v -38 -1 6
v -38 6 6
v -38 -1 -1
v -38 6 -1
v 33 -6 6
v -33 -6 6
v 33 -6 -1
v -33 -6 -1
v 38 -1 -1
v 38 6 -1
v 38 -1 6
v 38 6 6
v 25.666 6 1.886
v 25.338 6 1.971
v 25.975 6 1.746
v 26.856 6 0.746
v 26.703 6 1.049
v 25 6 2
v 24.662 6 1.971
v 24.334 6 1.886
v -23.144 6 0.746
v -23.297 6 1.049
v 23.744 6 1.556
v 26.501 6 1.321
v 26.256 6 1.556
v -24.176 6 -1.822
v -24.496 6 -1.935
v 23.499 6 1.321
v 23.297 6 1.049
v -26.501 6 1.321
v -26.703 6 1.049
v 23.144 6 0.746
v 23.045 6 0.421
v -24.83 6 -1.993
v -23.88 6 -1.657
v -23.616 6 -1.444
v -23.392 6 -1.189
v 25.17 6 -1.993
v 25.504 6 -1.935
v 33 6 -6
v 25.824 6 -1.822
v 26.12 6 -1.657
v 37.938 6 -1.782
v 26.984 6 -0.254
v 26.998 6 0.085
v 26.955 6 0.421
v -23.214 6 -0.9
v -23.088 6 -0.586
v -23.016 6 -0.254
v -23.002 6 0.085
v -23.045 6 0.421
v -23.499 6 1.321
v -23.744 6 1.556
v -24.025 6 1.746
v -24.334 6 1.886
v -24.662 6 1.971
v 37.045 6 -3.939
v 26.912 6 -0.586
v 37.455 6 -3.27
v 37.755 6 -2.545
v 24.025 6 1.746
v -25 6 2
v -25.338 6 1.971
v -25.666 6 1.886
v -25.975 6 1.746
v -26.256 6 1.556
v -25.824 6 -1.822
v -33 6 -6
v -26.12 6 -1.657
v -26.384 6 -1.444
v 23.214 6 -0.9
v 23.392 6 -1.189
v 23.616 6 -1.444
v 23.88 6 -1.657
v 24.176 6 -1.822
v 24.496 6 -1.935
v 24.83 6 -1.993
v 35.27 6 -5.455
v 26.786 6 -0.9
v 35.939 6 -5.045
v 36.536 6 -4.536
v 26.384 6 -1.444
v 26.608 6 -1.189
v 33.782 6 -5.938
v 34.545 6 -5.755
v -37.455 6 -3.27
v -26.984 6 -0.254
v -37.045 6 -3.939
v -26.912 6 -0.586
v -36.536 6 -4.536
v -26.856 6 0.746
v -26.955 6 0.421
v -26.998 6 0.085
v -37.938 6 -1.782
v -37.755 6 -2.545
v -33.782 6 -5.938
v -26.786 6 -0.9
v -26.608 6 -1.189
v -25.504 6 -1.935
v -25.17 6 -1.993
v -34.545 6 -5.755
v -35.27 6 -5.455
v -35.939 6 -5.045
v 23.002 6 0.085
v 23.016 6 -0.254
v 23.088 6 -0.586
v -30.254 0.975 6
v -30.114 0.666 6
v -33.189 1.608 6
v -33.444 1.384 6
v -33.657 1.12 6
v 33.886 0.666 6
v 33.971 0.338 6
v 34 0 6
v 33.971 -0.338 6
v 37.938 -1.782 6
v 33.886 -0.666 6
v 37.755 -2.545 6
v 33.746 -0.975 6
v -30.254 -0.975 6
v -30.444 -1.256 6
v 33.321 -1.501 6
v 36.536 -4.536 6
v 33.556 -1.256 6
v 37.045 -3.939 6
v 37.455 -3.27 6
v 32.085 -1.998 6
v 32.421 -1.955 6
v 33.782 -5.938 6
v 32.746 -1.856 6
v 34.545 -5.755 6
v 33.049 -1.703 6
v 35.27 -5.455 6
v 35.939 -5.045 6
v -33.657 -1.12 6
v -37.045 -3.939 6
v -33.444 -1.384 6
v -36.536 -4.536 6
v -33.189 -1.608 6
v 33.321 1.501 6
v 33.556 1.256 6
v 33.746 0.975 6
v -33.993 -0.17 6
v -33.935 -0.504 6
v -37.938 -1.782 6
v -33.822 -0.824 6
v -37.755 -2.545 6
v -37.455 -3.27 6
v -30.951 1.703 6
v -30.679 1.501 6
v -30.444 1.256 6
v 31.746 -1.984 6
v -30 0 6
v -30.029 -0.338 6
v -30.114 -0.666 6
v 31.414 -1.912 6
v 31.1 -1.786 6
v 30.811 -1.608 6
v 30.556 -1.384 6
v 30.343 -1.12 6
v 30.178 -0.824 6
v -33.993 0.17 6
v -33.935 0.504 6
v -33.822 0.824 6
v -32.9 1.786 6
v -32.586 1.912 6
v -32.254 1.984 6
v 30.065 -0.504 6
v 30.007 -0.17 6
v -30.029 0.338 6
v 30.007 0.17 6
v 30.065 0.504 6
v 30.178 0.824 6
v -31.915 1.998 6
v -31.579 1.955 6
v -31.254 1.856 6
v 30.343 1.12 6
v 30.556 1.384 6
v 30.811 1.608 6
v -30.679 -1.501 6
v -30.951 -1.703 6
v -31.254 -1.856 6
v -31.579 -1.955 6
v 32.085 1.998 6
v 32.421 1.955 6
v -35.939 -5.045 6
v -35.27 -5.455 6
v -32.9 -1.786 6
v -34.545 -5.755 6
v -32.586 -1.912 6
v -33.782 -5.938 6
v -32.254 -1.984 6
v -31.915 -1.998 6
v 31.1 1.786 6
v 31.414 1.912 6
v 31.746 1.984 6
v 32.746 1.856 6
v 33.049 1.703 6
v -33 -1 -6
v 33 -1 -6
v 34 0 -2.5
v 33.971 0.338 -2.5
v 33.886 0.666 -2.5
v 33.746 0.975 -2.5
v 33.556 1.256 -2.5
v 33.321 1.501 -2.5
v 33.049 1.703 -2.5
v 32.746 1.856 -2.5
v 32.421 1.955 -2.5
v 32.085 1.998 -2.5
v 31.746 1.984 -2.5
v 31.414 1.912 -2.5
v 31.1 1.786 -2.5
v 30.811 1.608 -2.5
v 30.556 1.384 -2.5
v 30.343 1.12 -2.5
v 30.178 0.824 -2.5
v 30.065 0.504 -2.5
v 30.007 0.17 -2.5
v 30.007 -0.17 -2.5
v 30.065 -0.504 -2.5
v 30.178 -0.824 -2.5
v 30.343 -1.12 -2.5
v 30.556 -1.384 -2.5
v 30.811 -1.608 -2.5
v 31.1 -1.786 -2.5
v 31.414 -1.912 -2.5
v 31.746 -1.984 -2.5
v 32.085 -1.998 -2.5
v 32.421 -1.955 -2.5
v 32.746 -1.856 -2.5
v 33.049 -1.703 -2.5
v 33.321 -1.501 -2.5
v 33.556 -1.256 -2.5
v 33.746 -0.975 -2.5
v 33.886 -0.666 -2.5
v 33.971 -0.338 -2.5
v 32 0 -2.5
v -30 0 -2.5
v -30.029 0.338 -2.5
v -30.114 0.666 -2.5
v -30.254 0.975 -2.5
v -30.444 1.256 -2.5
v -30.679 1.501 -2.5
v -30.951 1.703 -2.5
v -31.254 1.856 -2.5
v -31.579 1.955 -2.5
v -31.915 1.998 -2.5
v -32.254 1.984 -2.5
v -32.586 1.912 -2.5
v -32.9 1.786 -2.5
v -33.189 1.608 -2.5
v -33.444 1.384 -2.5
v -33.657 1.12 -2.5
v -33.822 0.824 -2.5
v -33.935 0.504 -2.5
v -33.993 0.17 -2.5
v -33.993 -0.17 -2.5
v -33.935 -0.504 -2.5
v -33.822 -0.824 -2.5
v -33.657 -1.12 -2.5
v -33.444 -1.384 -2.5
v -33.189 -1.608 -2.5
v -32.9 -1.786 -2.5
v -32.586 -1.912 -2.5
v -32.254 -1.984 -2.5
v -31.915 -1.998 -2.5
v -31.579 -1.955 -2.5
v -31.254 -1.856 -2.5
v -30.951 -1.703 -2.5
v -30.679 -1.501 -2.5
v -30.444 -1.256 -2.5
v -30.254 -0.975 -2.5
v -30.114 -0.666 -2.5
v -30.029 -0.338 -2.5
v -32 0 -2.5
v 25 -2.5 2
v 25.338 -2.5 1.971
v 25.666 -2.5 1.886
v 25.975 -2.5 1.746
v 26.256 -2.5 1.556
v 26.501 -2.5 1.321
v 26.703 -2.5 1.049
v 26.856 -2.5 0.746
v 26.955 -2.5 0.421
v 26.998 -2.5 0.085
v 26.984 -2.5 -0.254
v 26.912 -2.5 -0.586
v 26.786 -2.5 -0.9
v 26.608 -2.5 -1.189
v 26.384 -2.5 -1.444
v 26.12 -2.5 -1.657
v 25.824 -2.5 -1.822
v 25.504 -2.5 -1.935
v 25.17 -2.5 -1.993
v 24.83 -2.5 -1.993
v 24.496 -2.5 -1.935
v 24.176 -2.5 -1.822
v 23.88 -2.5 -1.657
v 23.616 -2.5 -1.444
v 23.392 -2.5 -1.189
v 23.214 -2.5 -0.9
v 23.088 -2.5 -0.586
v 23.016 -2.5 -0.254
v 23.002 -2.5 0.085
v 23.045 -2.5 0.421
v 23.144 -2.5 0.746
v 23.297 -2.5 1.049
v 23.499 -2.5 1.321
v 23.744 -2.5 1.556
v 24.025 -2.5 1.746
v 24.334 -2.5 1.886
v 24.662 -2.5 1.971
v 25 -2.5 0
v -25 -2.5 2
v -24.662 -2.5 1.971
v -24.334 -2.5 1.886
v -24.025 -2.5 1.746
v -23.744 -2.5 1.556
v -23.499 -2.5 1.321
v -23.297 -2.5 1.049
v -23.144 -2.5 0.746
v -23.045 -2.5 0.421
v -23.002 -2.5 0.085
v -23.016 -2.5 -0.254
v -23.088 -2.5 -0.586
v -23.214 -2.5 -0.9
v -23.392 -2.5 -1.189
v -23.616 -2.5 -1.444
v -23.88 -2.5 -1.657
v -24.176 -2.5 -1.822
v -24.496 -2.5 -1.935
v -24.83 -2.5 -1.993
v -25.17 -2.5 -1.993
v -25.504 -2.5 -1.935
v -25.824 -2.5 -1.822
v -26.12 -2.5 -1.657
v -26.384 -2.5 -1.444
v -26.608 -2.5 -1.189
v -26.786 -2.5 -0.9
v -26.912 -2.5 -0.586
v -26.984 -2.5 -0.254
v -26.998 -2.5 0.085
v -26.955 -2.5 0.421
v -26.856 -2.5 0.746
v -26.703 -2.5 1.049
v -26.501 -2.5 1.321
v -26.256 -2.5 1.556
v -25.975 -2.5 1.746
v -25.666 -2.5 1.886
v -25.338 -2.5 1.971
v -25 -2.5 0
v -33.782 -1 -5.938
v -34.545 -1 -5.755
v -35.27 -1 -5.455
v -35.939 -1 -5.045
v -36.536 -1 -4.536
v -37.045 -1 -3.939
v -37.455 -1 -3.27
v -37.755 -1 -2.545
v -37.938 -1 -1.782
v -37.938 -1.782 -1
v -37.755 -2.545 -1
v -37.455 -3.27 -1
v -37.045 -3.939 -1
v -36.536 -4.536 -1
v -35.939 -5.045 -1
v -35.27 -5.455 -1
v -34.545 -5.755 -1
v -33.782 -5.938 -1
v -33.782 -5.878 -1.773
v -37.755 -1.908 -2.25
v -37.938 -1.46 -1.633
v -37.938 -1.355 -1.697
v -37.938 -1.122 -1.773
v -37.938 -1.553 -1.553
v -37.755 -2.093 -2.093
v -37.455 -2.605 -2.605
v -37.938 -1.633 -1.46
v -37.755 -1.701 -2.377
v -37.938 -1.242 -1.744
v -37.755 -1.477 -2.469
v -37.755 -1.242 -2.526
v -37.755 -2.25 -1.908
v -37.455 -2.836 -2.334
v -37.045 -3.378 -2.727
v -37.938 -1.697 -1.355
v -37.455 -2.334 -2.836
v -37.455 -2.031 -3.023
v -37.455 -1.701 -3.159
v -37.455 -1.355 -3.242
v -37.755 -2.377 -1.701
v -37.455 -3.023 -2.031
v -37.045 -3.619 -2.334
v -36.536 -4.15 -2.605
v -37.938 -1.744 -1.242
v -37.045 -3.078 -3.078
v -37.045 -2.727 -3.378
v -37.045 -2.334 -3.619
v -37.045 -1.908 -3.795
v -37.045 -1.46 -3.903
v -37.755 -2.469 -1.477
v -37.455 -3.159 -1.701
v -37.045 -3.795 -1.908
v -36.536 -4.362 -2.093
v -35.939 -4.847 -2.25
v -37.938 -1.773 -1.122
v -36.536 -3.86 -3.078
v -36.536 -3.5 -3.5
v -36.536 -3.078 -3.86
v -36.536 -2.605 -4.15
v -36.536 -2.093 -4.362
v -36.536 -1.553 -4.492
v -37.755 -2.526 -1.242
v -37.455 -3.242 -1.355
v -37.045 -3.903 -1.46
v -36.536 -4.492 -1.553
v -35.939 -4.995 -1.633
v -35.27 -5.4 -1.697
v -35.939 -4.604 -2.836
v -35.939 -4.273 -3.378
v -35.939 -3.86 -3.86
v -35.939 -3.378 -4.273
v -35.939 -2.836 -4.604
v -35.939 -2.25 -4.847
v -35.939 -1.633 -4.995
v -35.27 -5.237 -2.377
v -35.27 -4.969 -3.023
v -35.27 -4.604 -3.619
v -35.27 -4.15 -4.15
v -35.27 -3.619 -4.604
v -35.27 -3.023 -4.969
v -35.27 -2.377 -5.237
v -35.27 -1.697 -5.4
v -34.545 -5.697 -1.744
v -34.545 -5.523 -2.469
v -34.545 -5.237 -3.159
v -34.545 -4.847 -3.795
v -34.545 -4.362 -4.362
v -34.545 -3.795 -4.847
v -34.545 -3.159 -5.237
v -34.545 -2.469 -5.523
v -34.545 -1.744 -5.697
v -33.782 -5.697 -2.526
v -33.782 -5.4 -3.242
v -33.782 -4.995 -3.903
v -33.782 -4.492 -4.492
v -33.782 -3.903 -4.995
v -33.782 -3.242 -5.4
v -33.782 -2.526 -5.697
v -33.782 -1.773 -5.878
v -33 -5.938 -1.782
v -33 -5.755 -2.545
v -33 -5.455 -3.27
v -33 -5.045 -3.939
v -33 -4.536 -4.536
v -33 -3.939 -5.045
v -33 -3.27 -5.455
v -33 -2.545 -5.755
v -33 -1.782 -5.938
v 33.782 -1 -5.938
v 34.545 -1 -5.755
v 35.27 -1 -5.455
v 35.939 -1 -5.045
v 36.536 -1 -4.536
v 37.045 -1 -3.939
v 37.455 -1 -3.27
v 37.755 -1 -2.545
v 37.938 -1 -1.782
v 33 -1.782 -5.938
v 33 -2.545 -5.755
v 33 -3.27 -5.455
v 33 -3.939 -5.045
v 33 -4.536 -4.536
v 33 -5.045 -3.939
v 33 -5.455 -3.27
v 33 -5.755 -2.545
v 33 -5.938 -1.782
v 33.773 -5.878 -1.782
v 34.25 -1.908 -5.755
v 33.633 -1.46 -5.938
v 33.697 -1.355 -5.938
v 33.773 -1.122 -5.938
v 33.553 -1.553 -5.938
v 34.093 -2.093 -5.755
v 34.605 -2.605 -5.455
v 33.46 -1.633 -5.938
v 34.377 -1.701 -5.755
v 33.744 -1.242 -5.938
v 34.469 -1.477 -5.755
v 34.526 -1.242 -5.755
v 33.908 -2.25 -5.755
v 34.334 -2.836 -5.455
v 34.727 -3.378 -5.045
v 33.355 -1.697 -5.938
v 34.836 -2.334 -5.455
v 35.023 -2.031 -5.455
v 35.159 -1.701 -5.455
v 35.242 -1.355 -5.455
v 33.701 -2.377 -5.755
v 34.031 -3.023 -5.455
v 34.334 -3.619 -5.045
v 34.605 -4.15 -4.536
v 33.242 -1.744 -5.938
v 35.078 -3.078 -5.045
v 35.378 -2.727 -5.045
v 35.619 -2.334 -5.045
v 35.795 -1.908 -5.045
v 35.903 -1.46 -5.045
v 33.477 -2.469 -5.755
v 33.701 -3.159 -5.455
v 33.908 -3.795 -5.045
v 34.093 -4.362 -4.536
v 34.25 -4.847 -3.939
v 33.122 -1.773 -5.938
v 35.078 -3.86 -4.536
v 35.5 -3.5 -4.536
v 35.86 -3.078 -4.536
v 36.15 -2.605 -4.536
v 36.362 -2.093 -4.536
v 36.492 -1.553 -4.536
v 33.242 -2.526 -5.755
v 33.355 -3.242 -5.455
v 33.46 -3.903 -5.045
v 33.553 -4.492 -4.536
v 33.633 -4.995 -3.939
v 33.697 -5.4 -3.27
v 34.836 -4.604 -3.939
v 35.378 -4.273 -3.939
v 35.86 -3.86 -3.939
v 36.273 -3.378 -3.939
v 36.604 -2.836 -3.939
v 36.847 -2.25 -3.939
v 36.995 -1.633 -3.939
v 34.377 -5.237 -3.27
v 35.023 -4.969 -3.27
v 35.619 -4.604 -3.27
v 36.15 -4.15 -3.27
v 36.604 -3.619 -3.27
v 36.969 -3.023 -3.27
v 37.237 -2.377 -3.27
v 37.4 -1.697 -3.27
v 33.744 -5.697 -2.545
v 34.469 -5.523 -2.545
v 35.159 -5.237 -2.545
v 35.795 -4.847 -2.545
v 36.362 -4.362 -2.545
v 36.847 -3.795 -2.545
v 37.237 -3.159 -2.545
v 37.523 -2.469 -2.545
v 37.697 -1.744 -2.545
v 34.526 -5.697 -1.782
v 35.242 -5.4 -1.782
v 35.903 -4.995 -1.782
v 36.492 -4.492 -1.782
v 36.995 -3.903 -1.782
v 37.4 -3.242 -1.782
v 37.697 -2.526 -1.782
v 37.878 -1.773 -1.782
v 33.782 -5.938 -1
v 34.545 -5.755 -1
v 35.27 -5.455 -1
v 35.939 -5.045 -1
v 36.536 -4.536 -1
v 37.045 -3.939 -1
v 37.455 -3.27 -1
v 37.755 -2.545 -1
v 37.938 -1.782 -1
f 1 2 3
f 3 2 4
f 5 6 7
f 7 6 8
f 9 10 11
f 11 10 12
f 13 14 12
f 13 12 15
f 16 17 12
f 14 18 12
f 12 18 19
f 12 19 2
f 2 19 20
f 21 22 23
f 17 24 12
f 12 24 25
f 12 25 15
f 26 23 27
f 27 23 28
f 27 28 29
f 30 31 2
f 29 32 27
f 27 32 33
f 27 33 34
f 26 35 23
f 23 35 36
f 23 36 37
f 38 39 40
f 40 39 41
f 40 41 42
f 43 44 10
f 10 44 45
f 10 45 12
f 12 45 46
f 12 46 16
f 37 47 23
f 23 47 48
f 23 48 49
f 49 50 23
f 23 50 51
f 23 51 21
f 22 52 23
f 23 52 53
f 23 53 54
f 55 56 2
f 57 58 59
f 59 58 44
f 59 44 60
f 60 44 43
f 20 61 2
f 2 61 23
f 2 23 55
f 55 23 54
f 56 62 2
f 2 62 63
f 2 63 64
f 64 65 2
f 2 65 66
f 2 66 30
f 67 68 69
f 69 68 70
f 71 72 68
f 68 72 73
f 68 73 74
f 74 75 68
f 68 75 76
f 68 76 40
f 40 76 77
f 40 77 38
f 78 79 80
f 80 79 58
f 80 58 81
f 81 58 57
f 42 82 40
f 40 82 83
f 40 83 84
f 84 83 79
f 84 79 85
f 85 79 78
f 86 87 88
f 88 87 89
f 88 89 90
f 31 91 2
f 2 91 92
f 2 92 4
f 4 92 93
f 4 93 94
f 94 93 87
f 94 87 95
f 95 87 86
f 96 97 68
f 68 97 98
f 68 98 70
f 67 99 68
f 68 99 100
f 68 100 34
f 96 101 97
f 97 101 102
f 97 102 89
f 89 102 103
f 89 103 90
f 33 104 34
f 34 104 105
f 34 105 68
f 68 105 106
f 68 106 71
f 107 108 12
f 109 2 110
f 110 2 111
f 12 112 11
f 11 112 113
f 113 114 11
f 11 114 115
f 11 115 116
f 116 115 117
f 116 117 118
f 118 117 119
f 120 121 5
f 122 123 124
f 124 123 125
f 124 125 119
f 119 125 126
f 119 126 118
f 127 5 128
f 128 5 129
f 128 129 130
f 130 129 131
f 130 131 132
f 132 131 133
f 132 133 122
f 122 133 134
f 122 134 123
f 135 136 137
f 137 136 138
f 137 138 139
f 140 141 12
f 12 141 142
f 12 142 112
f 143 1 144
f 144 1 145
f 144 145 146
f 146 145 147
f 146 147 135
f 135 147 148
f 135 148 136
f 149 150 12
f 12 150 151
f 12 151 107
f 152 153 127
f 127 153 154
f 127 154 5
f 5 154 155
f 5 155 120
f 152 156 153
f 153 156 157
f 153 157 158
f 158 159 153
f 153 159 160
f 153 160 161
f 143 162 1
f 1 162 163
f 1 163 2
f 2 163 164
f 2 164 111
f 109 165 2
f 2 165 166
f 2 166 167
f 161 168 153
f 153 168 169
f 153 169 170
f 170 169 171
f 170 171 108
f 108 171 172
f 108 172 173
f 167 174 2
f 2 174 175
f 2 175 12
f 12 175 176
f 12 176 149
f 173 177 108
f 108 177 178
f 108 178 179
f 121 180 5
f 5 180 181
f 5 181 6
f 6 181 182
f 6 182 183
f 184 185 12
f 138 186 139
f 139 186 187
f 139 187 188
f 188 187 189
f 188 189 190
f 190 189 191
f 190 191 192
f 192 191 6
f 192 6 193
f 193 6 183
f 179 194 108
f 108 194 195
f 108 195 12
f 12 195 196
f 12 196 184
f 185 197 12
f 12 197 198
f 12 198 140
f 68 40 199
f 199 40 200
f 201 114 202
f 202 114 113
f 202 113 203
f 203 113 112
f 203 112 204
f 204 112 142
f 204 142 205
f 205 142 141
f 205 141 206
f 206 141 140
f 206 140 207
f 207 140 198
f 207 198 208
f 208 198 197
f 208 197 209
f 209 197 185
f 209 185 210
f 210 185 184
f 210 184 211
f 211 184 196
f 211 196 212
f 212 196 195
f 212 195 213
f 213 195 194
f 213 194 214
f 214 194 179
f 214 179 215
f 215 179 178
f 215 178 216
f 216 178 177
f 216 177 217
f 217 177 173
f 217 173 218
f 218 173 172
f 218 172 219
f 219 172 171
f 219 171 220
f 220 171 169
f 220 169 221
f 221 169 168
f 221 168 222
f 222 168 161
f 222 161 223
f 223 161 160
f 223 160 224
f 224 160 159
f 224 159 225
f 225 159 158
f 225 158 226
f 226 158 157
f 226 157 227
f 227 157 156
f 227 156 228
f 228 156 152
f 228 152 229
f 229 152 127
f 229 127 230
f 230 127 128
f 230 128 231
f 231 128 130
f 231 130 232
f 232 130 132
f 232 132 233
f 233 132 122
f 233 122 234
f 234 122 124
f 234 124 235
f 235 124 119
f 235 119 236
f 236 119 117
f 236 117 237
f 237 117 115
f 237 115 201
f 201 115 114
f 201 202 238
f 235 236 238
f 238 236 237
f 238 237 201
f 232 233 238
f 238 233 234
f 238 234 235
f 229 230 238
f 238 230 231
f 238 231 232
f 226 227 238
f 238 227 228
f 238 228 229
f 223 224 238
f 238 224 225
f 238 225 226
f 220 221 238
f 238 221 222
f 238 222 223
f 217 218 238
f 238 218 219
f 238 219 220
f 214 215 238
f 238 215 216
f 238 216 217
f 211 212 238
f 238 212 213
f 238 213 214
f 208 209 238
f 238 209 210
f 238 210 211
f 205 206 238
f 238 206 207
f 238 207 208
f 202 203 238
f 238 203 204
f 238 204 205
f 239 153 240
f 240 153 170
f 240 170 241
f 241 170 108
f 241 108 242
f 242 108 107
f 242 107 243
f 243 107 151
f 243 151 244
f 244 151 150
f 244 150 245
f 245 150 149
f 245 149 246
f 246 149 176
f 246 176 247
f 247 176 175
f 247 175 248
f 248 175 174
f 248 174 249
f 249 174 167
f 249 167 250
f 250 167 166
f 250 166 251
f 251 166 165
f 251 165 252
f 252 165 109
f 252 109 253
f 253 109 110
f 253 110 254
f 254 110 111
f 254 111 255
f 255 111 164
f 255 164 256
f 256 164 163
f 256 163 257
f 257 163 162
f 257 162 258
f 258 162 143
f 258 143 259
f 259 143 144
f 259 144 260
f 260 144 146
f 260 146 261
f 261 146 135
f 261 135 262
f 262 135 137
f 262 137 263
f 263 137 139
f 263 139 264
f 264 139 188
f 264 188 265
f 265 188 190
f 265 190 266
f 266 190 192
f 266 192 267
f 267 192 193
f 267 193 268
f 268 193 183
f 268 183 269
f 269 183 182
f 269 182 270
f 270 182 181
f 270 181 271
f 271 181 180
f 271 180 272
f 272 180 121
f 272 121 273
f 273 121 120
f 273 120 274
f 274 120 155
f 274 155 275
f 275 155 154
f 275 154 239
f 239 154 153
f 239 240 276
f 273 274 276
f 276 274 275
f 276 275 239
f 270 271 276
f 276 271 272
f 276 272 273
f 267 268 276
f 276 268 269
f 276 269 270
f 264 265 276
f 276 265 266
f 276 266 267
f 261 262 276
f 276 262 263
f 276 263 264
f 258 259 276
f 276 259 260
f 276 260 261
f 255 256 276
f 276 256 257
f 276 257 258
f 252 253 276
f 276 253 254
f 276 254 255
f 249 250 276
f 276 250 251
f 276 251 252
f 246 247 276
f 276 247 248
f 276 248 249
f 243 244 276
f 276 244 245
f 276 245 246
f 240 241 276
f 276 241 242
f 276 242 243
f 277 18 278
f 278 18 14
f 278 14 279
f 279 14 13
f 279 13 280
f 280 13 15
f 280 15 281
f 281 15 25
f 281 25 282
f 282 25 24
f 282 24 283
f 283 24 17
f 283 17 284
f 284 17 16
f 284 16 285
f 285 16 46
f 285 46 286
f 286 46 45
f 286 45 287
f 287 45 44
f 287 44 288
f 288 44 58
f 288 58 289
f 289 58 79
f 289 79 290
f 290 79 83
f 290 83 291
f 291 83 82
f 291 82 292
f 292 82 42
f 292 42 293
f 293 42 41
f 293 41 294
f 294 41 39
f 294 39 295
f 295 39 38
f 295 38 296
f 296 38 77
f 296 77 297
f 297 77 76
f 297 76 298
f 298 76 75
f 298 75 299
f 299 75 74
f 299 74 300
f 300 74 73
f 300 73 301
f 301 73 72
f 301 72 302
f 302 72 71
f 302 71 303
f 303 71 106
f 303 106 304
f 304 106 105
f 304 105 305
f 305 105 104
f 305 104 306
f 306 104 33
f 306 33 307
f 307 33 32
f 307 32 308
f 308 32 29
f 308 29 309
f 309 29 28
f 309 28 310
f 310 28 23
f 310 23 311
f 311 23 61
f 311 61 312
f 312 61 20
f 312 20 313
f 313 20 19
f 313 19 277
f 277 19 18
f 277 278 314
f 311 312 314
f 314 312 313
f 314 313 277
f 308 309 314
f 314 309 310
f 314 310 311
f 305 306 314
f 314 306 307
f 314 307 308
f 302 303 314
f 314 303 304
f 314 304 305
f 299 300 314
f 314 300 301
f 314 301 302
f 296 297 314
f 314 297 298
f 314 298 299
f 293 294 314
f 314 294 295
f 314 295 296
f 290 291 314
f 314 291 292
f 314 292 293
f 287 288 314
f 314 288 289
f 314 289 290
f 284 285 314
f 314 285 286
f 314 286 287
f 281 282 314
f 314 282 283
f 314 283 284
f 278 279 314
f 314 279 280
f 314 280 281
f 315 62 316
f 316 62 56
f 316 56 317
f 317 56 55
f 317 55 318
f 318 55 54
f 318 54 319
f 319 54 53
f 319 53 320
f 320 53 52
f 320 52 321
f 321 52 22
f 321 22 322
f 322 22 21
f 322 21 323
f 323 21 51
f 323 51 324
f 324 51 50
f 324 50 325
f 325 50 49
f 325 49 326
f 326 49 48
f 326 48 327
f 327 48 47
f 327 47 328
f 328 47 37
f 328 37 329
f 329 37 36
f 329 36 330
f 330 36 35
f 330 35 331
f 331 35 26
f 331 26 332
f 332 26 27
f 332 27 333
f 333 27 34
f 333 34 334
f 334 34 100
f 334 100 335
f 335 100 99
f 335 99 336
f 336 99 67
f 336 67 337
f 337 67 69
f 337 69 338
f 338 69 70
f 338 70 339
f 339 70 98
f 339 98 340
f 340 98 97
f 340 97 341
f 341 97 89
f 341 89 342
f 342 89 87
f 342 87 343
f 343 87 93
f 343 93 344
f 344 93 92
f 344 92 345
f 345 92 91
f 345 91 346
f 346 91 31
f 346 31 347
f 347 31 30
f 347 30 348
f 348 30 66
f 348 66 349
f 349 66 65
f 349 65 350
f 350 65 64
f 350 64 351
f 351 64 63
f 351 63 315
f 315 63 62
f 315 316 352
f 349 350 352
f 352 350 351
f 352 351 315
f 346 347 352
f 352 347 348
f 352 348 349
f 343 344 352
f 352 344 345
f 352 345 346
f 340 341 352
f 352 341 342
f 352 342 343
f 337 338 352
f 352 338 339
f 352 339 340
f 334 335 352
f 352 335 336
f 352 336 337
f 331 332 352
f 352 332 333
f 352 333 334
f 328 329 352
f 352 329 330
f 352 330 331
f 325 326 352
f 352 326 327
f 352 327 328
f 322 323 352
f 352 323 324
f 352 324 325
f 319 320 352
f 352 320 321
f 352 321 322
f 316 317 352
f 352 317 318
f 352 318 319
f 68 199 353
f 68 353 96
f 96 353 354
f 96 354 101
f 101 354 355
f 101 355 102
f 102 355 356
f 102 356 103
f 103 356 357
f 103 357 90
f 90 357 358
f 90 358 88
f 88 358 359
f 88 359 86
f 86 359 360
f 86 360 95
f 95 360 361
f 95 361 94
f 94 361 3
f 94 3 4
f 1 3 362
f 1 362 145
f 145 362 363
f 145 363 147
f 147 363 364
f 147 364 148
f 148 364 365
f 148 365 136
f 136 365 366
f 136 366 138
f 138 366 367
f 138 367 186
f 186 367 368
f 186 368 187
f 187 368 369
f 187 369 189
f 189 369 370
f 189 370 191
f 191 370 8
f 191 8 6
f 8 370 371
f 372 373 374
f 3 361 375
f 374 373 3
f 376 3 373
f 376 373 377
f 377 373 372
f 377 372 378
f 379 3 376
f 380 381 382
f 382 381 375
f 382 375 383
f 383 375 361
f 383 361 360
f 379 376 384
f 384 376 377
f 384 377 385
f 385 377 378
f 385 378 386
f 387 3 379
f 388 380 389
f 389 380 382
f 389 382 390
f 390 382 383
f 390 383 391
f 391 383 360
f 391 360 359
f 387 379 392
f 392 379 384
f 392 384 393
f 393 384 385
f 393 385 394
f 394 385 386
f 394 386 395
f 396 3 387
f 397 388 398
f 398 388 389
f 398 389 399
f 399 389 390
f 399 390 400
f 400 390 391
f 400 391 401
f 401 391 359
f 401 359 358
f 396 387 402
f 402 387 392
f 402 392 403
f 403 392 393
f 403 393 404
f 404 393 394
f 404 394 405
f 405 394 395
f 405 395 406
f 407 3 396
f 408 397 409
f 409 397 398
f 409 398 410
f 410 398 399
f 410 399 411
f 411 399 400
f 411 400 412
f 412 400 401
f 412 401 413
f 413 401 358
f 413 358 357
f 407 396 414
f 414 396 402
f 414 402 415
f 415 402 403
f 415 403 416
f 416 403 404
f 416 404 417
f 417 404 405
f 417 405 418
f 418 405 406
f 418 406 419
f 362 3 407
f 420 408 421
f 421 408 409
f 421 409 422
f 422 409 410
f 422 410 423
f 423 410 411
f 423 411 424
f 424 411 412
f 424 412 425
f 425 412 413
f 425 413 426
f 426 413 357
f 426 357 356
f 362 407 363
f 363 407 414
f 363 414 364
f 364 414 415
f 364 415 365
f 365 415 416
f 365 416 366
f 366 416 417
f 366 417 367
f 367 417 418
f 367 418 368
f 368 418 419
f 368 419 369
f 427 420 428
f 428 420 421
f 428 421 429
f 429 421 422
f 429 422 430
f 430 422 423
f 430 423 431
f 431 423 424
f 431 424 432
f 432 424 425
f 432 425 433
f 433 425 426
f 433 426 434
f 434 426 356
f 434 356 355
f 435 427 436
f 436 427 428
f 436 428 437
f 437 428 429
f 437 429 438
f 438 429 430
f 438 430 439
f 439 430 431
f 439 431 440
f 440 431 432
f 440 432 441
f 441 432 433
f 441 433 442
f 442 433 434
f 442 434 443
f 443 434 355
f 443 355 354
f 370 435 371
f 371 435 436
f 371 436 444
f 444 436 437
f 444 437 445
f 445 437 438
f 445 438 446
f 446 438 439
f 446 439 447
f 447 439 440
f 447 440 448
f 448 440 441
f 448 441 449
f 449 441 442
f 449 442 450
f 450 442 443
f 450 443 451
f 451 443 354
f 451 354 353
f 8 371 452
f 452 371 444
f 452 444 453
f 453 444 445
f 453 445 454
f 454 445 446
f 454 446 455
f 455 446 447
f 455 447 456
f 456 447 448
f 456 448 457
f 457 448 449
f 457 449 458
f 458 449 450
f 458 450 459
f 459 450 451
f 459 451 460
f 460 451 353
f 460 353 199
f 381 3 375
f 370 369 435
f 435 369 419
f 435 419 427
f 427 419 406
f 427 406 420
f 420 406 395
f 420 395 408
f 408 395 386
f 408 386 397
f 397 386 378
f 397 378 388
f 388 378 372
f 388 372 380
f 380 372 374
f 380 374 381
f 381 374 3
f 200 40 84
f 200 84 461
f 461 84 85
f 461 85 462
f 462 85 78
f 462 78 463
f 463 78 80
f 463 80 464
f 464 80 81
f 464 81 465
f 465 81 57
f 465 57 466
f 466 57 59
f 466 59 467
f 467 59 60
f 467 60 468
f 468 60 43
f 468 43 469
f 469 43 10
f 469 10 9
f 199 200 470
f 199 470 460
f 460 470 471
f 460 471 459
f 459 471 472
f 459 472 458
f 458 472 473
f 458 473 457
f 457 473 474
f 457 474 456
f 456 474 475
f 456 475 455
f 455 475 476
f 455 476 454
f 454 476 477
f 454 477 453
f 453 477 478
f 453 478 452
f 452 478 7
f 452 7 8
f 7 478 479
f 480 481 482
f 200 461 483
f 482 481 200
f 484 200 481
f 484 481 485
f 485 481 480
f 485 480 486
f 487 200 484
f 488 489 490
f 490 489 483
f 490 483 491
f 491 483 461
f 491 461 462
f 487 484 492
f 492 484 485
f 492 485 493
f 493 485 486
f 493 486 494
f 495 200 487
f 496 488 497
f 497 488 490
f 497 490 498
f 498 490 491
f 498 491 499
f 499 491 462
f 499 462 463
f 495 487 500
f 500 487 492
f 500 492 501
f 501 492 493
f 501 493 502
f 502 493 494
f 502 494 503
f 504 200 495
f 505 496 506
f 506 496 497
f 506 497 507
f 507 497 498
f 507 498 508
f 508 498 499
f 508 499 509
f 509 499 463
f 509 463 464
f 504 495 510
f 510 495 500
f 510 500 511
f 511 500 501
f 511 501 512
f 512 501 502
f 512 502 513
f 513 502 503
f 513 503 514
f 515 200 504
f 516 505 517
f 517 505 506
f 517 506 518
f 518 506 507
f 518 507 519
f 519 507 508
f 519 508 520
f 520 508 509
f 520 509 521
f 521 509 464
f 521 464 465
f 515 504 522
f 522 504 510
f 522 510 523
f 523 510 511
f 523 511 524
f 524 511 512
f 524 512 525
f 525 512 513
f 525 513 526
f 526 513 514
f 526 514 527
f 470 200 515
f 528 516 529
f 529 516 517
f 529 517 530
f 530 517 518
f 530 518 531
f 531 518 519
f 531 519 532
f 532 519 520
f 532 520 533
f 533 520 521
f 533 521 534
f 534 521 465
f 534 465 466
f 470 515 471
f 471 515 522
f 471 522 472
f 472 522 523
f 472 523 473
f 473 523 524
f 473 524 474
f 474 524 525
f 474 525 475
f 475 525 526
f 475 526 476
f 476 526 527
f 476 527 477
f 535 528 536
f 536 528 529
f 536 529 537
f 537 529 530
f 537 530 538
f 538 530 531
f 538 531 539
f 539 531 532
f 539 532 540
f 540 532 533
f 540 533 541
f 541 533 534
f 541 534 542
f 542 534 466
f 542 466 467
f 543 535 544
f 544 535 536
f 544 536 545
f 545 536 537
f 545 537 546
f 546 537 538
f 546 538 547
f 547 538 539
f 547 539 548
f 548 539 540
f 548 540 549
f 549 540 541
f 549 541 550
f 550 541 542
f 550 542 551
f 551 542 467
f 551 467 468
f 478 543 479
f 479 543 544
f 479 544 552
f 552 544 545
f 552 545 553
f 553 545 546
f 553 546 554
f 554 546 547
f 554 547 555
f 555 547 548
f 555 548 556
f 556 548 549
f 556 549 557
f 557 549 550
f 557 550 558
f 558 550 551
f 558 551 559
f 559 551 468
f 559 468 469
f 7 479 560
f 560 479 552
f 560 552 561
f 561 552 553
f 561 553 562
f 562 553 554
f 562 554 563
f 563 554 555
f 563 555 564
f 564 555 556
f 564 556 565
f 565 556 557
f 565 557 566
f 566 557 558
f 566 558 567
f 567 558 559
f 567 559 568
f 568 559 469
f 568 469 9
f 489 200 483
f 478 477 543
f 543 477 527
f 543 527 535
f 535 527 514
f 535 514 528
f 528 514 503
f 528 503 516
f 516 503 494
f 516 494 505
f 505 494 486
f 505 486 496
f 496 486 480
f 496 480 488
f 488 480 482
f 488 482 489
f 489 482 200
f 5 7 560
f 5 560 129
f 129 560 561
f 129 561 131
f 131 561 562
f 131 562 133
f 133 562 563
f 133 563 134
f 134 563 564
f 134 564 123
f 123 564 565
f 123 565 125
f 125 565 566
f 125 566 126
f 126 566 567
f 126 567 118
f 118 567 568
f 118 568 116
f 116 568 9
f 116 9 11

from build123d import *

# Parameters (mm, degrees)
SKETCH1_W           = 76
SKETCH1_H           = 12
BOSS_EXTRUDE1_DEPTH = 6
SKETCH2_R           = 2
CUT_EXTRUDE1_DEPTH  = 8.5
SKETCH3_R           = 2
CUT_EXTRUDE2_DEPTH  = 8.5
FILLET1_R           = 5


with BuildPart() as part:
    # Sketch1 → Boss-Extrude1 (new, symmetric)
    with BuildSketch(Plane.XY):
        Rectangle(SKETCH1_W, SKETCH1_H)
    extrude(amount=BOSS_EXTRUDE1_DEPTH, both=True)

    # Sketch2 → Cut-Extrude1 (cut)
    with BuildSketch(Plane.XY.offset(6)):
        with Locations((-32, 0)):
            Circle(SKETCH2_R)
        with Locations((32, 0)):
            Circle(SKETCH2_R)
    extrude(amount=-CUT_EXTRUDE1_DEPTH, mode=Mode.SUBTRACT)

    # Sketch3 → Cut-Extrude2 (cut)
    with BuildSketch(Plane(origin=(0, 6, 0), x_dir=(1, 0, 0), z_dir=(0, 1, 0))):
        with Locations(Location((-25, 0, 0), (0, 0, 270))):
            Circle(SKETCH3_R)
        with Locations(Location((25, 0, 0), (0, 0, 270))):
            Circle(SKETCH3_R)
    extrude(amount=-CUT_EXTRUDE2_DEPTH, mode=Mode.SUBTRACT)

    # Fillet1
    fillet1_edges = [part.edges().sort_by_distance(p)[0] for p in [
        (38, 0, -6),
        (0, -6, -6),
        (-38, 0, -6),
        (38, -6, 0),
        (-38, -6, 0),
    ]]
    fillet(fillet1_edges, radius=FILLET1_R)


solid = part.part
